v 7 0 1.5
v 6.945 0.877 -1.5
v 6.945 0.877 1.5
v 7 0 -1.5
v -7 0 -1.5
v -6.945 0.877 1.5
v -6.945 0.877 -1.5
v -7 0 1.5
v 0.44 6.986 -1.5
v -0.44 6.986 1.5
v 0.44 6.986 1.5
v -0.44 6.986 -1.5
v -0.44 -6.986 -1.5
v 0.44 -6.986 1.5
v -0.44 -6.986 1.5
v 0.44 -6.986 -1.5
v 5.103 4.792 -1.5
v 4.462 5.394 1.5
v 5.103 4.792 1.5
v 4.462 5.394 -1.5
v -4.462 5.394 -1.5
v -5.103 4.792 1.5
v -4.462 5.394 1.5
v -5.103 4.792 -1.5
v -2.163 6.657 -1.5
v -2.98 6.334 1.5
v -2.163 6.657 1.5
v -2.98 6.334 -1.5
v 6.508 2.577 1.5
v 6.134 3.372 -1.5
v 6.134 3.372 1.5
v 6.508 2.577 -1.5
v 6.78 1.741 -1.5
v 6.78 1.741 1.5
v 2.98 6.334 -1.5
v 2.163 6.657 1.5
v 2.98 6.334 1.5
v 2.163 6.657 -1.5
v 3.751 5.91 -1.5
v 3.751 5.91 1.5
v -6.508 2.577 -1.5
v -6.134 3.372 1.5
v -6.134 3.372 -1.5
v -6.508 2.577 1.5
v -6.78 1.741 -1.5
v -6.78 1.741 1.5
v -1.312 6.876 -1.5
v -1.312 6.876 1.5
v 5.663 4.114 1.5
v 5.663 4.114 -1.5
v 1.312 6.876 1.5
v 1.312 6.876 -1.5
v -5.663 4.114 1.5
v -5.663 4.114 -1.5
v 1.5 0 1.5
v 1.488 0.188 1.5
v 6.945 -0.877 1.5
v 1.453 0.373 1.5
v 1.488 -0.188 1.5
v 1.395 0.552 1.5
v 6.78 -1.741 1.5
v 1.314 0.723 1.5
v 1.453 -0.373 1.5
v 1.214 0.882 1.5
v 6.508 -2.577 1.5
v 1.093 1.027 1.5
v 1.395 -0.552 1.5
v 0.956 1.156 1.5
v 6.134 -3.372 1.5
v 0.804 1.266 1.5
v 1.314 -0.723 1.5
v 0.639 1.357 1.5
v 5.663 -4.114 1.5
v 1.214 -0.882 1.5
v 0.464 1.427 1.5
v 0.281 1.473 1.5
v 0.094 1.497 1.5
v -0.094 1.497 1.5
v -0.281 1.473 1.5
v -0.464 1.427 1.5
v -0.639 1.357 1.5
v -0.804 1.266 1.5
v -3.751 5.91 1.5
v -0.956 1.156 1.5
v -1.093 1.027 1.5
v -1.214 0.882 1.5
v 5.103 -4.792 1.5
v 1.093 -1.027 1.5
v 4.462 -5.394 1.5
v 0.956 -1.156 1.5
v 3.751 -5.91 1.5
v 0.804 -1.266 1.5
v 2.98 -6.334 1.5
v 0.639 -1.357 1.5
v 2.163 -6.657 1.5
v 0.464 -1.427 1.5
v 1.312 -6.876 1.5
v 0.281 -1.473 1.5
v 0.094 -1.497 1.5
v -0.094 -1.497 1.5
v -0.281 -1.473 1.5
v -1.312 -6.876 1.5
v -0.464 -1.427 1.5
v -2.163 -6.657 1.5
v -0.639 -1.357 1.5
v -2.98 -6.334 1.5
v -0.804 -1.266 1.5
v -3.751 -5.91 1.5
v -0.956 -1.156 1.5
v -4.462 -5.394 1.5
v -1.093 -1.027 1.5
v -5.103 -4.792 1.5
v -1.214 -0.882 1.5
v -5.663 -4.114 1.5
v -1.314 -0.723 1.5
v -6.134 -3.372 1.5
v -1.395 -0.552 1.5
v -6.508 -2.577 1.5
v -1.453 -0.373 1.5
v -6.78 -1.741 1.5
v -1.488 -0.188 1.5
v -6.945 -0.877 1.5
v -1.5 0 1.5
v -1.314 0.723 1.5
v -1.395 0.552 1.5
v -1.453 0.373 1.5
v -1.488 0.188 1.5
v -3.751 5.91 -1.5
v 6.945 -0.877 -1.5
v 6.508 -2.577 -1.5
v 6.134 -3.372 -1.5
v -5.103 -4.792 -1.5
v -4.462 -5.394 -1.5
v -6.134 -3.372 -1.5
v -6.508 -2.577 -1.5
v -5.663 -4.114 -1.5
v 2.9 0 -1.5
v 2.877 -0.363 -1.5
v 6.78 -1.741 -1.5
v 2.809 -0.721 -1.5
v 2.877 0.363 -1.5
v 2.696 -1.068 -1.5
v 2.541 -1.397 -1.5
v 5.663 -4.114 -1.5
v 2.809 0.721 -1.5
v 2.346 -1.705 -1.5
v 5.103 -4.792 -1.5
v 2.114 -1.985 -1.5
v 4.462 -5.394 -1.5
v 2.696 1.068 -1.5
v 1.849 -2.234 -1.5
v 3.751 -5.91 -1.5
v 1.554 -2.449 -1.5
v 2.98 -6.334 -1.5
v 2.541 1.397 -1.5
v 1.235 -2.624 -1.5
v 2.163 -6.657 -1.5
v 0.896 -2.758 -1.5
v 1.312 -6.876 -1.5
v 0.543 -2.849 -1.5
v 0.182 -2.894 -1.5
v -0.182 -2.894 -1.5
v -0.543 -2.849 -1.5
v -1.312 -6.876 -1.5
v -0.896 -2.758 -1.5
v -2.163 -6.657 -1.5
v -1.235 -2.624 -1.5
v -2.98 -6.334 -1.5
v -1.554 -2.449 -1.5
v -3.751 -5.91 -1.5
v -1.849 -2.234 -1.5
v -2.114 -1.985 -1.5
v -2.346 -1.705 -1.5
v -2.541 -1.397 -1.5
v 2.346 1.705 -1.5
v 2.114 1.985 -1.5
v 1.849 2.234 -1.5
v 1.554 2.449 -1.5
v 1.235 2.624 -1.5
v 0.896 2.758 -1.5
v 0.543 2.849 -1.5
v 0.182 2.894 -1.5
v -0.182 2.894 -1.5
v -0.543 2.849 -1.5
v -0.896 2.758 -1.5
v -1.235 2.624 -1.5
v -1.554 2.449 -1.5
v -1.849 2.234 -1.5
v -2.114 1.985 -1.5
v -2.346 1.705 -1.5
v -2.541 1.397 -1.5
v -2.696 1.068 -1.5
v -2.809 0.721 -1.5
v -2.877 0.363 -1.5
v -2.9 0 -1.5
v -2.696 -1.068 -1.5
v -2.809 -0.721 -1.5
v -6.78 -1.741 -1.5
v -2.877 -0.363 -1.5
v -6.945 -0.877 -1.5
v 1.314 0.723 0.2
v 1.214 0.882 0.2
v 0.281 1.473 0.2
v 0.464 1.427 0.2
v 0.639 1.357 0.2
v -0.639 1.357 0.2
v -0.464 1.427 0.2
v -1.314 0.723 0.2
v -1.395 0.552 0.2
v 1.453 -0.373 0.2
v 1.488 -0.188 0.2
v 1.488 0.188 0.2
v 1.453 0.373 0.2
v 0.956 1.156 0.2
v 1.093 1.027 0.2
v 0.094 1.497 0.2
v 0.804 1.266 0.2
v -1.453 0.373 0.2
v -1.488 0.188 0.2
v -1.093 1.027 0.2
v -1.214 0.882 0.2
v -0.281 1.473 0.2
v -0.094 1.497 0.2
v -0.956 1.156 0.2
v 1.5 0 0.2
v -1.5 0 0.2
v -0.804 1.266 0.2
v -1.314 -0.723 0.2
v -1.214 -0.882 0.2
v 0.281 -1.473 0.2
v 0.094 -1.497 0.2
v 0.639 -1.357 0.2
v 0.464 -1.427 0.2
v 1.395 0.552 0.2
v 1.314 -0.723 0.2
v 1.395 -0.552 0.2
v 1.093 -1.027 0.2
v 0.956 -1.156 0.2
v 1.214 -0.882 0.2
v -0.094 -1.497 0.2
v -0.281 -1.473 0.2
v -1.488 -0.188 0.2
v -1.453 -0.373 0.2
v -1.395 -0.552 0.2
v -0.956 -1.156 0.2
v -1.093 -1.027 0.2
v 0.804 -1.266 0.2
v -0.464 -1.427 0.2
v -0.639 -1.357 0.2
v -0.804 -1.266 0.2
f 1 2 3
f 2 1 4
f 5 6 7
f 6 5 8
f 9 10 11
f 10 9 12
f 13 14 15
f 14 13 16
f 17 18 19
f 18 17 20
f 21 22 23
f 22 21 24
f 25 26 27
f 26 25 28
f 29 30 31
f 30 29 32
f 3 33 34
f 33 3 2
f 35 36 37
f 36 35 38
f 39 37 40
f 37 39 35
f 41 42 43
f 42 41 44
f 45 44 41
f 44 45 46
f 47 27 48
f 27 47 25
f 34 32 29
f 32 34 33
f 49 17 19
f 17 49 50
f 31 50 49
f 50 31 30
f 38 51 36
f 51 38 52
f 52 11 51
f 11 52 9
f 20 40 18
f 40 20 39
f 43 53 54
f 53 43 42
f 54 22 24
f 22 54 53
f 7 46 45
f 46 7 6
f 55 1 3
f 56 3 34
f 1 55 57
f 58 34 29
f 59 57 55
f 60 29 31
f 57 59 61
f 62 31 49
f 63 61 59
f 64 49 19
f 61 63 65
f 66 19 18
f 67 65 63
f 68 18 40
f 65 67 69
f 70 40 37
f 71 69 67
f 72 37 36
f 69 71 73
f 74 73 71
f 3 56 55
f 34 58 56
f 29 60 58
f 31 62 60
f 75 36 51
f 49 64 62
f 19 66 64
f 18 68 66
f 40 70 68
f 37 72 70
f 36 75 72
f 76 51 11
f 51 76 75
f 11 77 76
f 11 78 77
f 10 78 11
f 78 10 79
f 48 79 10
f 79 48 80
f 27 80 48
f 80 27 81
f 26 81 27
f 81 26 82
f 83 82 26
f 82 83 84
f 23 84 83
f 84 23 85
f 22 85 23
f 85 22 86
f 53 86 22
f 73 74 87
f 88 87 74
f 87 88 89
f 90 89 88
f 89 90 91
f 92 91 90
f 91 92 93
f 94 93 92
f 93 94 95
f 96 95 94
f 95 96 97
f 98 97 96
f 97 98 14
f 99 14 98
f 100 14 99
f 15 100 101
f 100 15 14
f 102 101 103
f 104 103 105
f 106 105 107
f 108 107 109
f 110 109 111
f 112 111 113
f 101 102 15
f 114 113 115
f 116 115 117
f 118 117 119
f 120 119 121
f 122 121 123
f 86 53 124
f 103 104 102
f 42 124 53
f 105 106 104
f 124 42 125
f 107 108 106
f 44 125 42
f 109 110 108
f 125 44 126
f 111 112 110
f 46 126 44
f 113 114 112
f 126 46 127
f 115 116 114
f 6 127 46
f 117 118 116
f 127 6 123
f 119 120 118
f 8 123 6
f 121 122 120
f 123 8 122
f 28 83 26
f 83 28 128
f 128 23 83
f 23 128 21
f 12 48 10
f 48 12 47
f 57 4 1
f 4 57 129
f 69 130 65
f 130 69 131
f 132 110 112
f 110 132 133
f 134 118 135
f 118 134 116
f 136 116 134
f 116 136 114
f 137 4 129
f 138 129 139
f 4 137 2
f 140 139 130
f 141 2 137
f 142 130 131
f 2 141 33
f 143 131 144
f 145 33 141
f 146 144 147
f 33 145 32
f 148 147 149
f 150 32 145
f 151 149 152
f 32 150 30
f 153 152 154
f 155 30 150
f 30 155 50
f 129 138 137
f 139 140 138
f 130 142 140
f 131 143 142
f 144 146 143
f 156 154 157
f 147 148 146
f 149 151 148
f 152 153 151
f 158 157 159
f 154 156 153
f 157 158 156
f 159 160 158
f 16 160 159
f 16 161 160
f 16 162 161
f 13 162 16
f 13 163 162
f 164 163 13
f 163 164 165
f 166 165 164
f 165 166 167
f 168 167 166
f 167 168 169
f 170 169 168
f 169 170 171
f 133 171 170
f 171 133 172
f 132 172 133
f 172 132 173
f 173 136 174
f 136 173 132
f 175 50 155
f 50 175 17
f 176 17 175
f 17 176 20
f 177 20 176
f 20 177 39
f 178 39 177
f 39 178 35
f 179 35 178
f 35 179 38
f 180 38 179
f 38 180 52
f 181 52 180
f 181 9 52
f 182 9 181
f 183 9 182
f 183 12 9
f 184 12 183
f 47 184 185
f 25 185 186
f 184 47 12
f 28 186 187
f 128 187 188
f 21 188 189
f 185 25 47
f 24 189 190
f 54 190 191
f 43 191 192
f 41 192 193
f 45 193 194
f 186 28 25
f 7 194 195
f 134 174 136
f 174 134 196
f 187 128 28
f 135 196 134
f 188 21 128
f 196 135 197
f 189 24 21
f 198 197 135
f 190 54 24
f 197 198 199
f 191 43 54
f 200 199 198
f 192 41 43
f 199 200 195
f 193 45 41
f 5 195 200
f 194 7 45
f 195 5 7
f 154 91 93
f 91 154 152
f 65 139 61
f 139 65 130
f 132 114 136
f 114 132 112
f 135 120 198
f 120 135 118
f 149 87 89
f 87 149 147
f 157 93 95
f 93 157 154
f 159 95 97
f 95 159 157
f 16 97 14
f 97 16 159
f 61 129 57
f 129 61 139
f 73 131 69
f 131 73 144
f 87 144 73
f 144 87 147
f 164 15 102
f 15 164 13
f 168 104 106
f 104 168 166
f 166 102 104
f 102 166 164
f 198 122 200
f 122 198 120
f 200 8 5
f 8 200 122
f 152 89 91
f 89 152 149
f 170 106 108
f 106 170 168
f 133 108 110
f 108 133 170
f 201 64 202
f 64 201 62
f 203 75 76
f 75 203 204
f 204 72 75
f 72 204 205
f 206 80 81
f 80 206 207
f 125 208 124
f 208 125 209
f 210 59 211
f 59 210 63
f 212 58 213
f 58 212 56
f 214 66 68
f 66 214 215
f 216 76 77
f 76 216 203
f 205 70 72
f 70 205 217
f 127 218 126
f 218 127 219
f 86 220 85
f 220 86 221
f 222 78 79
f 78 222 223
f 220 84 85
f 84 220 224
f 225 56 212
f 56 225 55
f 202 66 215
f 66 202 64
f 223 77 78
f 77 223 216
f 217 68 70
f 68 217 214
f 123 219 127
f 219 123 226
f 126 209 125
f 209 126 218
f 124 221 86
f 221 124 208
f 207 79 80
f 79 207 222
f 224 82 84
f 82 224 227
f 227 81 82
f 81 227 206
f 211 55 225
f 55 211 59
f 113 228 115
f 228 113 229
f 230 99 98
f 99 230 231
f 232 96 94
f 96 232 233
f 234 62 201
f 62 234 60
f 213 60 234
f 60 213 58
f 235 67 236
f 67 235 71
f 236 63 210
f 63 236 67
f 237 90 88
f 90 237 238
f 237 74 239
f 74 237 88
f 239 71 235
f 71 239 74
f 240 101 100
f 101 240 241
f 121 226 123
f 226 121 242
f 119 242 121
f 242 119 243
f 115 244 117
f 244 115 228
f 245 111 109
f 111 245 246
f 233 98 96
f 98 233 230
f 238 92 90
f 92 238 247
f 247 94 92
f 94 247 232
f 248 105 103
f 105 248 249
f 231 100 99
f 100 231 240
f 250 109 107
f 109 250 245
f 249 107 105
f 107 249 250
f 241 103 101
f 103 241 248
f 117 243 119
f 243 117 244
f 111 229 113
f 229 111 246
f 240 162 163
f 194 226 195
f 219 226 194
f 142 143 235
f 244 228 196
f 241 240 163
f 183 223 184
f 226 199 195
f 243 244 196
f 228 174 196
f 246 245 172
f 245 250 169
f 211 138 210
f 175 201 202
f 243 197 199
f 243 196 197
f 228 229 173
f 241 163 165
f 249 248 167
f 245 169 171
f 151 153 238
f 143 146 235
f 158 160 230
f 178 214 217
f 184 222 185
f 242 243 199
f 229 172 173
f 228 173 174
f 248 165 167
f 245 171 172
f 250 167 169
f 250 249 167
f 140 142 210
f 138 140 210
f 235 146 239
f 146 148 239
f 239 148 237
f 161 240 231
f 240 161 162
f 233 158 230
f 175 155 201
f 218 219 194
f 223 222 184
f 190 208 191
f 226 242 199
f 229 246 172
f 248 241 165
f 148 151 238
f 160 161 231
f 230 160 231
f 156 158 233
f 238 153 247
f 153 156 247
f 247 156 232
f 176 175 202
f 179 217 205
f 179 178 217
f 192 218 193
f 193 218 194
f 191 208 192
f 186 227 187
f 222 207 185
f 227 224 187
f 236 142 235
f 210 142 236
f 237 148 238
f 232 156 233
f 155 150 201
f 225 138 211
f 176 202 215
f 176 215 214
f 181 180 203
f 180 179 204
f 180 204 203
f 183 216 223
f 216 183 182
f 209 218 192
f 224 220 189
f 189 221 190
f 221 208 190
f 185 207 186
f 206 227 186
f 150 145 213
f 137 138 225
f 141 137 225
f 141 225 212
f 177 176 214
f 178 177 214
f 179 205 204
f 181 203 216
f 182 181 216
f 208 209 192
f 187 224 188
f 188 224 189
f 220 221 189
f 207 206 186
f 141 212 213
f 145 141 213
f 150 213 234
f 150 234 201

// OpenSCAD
$fn = 50;


difference() {
	union() {
		translate(v = [0, 0, -1.5000000000]) {
			rotate(a = [0, 0, 0]) {
				cylinder(h = 3, r = 7.0000000000);
			}
		}
		translate(v = [0, 0, -1.5000000000]) {
			rotate(a = [0, 0, 0]) {
				cylinder(h = 3, r = 3.0000000000);
			}
		}
	}
	union() {
		translate(v = [0, 0, -125.0000000000]) {
			rotate(a = [0, 0, 0]) {
				cylinder(h = 250, r = 1.5000000000);
			}
		}
		#translate(v = [0, 0, 0.2000000000]) {
			rotate(a = [0, 180, 0]) {
				cylinder(h = 1.7000000000, r1 = 1.5000000000, r2 = 2.9000000000);
			}
		}
		#translate(v = [0, 0, 1.5000000000]) {
			rotate(a = [0, 180, 0]) {
				cylinder(h = 3, r = 1.5000000000);
			}
		}
	}
}
